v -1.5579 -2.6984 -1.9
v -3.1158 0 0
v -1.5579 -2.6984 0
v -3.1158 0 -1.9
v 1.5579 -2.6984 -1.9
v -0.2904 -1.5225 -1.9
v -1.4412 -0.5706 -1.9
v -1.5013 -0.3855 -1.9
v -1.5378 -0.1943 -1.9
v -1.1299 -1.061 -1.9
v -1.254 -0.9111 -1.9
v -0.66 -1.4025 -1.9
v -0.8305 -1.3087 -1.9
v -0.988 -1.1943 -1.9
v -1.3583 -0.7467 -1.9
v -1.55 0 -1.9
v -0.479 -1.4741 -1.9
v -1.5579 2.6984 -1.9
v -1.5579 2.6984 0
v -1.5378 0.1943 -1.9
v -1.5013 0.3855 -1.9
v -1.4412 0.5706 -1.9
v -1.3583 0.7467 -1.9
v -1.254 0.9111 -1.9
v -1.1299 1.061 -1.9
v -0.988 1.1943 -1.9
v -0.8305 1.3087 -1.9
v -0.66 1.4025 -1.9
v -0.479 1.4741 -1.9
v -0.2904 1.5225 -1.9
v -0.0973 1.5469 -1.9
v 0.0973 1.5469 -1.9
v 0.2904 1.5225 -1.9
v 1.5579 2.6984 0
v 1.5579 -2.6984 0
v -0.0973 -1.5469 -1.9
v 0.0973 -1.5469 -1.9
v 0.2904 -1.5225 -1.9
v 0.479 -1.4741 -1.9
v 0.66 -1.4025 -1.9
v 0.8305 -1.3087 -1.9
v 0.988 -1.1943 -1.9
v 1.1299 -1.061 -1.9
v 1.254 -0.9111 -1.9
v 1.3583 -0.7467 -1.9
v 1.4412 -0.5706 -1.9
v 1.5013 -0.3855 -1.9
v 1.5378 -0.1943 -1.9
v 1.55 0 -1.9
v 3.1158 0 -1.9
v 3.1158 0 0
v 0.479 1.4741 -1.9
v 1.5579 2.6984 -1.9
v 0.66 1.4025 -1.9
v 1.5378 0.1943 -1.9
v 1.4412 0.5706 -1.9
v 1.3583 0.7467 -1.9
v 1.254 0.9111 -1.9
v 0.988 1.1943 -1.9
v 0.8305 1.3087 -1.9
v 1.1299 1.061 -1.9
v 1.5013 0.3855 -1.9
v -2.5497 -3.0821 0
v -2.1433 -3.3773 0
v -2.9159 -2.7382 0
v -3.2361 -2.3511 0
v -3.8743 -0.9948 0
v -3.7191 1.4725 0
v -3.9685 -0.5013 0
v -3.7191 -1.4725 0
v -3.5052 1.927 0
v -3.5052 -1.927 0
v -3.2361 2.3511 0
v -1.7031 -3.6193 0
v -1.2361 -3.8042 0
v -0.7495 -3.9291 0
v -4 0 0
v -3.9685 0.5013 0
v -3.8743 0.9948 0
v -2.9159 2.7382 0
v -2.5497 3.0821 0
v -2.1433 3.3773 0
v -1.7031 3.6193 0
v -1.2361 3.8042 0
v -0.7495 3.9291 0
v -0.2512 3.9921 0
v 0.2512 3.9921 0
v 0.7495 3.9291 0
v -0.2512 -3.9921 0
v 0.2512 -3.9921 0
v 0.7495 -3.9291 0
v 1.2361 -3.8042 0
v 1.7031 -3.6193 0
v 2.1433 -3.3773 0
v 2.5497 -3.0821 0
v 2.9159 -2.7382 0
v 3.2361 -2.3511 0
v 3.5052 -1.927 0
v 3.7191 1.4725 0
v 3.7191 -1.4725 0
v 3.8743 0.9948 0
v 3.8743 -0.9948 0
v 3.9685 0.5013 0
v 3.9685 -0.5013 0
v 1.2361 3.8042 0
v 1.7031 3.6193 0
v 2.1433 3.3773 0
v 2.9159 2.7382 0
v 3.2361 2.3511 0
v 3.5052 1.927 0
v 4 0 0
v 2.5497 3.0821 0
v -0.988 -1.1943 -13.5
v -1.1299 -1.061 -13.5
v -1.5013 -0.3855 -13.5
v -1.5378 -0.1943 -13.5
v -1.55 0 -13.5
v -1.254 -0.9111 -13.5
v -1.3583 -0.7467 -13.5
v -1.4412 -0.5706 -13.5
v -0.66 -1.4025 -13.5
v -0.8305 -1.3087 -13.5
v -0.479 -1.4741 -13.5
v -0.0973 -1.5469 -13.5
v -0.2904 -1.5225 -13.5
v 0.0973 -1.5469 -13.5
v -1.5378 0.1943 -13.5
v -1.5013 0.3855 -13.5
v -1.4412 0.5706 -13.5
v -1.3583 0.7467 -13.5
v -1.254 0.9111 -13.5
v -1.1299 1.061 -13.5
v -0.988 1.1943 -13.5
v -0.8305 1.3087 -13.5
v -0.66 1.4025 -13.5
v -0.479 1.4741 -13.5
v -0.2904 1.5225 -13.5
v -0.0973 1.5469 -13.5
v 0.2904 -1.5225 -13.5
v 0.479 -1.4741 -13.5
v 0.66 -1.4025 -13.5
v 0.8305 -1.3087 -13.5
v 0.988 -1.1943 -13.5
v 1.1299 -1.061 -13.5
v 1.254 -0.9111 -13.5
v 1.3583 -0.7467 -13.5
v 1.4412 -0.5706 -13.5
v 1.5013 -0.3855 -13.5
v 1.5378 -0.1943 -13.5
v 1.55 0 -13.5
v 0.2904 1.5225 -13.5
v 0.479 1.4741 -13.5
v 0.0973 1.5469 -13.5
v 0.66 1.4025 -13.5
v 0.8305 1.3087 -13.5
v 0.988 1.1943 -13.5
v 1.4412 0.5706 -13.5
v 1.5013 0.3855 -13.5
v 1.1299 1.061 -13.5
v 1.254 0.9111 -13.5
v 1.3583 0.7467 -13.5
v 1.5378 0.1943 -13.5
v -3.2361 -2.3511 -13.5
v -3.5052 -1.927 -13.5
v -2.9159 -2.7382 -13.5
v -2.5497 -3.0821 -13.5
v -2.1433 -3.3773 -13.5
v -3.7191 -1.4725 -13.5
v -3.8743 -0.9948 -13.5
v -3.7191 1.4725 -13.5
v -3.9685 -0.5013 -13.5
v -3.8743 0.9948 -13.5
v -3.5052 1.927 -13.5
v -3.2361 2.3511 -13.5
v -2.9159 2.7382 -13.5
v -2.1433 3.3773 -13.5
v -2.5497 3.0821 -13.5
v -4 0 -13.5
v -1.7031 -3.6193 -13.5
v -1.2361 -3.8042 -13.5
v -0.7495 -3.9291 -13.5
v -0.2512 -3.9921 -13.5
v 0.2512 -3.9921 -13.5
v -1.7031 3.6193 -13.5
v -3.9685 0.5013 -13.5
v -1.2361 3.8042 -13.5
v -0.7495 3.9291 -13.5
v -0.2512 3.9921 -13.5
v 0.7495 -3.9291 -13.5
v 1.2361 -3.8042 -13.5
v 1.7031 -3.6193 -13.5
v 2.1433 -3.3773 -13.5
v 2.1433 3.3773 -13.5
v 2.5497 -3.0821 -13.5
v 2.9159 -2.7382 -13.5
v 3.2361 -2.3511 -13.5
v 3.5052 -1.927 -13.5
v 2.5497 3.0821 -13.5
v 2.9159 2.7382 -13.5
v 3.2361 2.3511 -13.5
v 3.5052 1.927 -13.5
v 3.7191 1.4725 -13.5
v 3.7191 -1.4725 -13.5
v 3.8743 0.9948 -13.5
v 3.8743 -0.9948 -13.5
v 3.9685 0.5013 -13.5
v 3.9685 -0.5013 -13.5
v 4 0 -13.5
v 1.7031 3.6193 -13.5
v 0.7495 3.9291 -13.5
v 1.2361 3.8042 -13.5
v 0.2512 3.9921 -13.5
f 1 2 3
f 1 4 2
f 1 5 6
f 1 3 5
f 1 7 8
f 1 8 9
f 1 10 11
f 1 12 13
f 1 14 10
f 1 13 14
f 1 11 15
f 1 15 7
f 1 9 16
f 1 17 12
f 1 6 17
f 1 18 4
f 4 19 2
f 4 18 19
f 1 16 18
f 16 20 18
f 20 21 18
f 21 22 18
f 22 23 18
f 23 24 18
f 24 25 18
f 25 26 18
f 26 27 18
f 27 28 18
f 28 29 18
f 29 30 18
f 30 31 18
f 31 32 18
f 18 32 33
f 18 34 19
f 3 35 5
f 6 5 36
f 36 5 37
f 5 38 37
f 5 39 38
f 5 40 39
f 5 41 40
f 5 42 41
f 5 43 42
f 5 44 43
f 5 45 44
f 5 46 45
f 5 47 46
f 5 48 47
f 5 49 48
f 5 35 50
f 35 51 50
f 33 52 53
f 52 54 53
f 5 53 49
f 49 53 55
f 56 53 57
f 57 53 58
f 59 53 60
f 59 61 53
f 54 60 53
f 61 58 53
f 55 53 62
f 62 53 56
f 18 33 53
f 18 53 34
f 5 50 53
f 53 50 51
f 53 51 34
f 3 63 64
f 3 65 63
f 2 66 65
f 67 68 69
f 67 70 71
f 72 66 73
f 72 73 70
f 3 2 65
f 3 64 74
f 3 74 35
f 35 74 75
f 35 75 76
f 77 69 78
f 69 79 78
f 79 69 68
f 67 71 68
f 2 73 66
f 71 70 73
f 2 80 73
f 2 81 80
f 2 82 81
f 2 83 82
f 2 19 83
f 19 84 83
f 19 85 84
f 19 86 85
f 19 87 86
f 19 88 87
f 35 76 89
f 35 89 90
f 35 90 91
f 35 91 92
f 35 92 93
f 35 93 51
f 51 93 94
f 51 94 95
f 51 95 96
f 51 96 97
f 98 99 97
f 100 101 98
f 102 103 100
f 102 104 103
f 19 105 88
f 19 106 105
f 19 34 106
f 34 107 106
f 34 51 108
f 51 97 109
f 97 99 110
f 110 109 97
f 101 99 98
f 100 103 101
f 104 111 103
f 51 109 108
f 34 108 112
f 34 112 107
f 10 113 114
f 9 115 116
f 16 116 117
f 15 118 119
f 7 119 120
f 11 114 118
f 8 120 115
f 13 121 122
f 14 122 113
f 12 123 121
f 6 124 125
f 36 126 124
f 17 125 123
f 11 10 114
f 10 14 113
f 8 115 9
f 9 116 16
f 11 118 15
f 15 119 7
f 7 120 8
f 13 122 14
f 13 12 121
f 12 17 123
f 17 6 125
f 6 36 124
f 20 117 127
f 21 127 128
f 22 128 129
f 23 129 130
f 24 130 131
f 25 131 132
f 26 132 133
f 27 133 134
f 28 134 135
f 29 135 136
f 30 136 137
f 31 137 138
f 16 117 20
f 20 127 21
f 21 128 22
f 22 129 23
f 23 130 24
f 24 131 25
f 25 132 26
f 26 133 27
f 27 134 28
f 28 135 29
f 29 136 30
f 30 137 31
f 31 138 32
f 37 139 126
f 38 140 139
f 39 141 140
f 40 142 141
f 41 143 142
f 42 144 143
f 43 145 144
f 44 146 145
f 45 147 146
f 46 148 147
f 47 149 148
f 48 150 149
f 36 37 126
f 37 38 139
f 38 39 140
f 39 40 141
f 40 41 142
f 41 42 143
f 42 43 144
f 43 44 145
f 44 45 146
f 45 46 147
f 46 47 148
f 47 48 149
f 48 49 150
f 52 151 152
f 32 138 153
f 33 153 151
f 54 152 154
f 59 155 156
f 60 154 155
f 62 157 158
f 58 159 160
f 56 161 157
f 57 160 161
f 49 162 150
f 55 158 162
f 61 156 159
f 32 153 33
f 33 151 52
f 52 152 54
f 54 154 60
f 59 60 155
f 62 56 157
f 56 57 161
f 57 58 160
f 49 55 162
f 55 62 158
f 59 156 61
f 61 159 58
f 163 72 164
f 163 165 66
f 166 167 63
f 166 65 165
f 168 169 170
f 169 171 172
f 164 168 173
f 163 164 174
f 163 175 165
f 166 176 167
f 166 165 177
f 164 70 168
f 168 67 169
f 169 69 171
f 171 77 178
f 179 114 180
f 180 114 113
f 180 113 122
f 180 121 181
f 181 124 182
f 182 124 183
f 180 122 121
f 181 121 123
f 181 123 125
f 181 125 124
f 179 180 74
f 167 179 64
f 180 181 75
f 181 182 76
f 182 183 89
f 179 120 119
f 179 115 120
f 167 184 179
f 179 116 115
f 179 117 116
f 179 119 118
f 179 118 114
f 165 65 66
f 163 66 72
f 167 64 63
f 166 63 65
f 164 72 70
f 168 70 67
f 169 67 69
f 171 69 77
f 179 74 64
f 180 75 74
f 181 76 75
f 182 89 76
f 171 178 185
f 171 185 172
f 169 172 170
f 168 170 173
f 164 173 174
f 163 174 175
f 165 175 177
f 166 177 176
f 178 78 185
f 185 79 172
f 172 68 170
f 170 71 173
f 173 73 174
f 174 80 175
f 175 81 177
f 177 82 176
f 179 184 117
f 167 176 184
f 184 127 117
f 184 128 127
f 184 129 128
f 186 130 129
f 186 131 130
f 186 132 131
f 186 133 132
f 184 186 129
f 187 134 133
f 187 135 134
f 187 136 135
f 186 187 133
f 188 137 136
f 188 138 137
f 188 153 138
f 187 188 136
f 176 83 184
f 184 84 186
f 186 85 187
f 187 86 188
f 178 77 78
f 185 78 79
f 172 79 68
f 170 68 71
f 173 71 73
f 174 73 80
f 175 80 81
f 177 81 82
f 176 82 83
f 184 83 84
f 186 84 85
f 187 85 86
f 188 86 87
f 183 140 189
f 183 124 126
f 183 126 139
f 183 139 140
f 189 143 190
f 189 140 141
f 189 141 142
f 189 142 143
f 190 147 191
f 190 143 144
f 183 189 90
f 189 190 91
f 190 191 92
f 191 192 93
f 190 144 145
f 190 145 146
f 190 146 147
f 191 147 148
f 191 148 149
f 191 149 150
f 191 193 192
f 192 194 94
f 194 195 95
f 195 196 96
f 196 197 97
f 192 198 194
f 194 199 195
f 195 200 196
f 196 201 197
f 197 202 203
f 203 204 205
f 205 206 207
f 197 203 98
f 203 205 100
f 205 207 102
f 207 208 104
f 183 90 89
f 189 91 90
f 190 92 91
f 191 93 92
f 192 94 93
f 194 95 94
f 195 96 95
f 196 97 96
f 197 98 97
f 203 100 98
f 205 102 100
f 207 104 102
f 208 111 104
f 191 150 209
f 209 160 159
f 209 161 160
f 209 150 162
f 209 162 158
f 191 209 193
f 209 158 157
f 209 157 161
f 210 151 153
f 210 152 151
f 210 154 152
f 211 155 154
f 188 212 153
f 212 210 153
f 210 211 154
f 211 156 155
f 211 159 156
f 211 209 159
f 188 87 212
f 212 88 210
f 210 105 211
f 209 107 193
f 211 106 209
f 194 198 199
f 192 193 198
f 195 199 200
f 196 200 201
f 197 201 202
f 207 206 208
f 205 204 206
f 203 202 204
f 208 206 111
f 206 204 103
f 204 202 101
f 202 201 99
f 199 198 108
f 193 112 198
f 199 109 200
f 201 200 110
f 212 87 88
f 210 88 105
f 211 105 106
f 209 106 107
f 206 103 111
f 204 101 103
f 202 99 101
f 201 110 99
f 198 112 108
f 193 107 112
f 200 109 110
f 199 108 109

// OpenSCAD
$fn = 50;

difference() {
	union() {
		translate(v = [0, 0, -13.5]) {
			cylinder(h = 16.5, r = 4.0);
		}
	}
	union() {
		translate(v = [0, 0, 0]) {
			rotate(a = [0, 0, 0]) {
				difference() {
					union() {
						translate(v = [0, 0, -1.9]) {
							linear_extrude(height = 1.9) {
								polygon(points = [[3.1158, 0.0], [1.5579000000000005, 2.698361953111554], [-1.5578999999999994, 2.6983619531115544], [-3.1158, 3.815754496783323e-16], [-1.5579000000000014, -2.6983619531115535], [1.557899999999998, -2.6983619531115552]]);
							}
						}
					}
					union();
				}
			}
		}
		#cylinder(h = 3, r = 5.0);
		#translate(v = [0, 0, -100.0]) {
			cylinder(h = 200, r = 1.55);
		}
	}
}
